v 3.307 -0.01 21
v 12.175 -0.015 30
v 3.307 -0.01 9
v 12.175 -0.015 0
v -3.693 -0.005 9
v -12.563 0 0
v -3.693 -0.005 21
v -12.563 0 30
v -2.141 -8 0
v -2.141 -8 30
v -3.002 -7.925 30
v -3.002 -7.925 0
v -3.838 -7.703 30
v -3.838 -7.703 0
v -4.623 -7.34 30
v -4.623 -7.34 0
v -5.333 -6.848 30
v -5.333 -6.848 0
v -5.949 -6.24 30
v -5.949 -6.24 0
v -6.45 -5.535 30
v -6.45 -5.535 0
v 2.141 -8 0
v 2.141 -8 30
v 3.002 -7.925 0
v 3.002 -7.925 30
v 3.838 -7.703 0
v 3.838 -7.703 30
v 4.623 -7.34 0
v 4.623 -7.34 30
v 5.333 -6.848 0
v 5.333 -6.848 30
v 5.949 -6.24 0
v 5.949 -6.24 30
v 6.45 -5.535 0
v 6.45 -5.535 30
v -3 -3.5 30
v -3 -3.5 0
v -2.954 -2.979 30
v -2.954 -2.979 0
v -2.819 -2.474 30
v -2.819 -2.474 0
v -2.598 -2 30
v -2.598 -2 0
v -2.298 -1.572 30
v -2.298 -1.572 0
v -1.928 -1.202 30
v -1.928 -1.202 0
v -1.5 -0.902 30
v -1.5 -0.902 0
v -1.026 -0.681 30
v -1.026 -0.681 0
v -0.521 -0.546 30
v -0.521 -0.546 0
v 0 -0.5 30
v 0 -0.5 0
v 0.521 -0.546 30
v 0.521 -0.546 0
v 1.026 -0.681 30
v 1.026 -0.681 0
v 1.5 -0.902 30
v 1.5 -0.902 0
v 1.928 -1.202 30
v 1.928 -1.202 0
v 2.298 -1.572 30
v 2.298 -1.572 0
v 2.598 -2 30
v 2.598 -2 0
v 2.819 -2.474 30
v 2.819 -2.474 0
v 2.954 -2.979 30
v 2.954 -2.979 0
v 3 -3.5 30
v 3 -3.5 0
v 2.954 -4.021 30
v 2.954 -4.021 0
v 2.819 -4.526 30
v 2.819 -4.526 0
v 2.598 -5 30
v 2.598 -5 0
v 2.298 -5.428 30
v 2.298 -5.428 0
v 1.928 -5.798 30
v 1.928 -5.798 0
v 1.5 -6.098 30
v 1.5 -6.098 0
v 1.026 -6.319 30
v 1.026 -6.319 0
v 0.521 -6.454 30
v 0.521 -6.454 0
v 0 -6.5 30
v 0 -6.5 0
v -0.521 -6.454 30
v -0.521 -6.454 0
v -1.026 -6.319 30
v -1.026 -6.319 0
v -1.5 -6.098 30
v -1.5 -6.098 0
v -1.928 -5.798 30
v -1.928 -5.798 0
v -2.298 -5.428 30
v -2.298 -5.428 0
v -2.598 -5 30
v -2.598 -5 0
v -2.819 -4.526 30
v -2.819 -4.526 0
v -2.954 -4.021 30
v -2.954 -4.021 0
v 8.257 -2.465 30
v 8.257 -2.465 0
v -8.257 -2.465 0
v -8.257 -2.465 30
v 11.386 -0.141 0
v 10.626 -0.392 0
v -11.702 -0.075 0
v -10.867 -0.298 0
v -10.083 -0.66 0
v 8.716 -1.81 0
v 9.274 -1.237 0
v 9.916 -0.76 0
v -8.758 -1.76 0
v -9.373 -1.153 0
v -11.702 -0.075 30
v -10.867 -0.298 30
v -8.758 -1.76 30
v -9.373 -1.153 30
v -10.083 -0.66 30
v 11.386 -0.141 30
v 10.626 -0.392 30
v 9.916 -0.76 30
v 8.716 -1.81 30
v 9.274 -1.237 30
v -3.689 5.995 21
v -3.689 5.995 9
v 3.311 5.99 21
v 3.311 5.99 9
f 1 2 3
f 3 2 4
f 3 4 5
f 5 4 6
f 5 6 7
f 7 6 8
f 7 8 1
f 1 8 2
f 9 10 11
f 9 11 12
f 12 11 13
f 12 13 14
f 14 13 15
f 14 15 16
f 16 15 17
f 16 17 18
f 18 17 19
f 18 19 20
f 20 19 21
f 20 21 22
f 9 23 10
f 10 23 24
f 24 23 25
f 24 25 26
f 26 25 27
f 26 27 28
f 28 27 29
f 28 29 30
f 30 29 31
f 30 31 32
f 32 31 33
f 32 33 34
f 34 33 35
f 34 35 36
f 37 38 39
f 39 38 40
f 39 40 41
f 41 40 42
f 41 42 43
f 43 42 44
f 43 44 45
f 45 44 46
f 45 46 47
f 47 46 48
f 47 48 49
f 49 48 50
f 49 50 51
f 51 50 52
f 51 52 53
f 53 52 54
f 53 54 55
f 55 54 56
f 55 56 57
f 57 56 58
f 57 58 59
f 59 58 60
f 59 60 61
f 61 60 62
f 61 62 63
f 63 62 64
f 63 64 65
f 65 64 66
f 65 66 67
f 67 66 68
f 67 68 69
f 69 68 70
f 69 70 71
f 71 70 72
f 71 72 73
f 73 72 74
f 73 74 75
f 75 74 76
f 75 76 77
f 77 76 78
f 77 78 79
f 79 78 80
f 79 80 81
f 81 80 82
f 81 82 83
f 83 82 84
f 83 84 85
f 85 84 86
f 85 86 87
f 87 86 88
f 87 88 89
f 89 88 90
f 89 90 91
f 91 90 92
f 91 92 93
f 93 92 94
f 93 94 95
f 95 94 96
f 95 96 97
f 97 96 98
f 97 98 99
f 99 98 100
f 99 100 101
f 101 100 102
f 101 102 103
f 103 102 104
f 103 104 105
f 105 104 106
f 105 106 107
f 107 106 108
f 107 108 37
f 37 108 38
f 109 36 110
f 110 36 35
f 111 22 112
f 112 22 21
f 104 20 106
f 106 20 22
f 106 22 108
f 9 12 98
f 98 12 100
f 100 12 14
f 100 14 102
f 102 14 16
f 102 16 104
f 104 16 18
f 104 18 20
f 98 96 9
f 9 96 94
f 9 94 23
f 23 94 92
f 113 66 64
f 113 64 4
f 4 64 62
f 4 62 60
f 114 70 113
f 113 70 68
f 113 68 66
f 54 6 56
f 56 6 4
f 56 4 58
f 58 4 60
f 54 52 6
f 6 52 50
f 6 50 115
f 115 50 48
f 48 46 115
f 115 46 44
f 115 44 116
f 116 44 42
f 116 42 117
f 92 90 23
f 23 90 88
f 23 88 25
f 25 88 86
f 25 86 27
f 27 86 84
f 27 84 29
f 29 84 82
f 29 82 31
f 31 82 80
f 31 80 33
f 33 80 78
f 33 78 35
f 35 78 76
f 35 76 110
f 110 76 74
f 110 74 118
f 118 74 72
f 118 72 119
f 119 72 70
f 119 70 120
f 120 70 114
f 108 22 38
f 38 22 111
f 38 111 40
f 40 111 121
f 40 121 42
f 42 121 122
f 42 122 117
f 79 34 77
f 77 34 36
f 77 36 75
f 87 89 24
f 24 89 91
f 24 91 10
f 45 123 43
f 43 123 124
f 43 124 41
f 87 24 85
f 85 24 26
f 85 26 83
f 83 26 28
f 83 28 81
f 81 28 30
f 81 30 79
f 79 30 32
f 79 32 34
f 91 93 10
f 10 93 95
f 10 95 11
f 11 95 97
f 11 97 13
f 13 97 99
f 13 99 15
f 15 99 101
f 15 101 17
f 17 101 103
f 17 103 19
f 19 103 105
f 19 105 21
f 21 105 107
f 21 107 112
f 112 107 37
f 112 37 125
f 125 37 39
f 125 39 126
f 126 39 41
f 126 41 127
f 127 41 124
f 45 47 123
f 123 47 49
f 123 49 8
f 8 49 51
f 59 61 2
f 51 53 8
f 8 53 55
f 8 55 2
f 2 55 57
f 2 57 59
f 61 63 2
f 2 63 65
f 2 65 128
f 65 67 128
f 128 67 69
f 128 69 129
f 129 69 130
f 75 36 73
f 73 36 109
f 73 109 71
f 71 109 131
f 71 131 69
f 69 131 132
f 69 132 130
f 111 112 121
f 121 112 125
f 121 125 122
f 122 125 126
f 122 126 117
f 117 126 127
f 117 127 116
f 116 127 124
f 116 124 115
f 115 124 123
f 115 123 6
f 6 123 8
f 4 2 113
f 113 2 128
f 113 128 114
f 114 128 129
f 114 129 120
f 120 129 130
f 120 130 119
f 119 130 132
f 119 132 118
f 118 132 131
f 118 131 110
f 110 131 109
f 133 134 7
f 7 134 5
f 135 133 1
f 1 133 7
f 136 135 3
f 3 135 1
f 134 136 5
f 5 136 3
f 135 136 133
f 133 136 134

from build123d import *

# Parameters (mm, degrees)
STOCK_AUGET_1_OUTLINE_R = 3
STOCK_AUGET_1_DEPTH     = 30
ESQUISSE1_W             = 7
ESQUISSE1_H             = 12
BOSS_EXTRU_1_DEPTH      = 6


# Read off the part's stored shape, not the designer's step: Stock-auget-1
with BuildPart() as part:
    # Stock-auget-1 outline → Stock-auget-1 (new body)
    with BuildSketch(Plane.XY):
        with BuildLine():
            ThreePointArc((8.256781031, -2.464537089), (9.916165038, -0.760058008), (12.17539903, -0.015298993))
            Line((12.17539903, -0.015298993), (-12.563147232, -9.56e-07))
            ThreePointArc((-12.563147232, -9.56e-07), (-10.082691958, -0.660415437), (-8.256781031, -2.464537089))
            Line((-8.256781031, -2.464537089), (-6.450006579, -5.535462911))
            ThreePointArc((-6.450006579, -5.535462911), (-4.622753843, -7.340352207), (-2.140548629, -8))
            Line((-2.140548629, -8), (2.140548629, -8))
            ThreePointArc((2.140548629, -8), (4.622753843, -7.340352207), (6.450006579, -5.535462911))
            Line((6.450006579, -5.535462911), (8.256781031, -2.464537089))
        make_face()
        with Locations((0, -3.5)):
            Circle(STOCK_AUGET_1_OUTLINE_R, mode=Mode.SUBTRACT)
    extrude(amount=STOCK_AUGET_1_DEPTH)

    # Esquisse1 → Boss.-Extru.1 (add)
    with BuildSketch(Plane(origin=(-4.805e-06, -0.007770331, 0), x_dir=(0.9999998088216733, -0.0006183499145584942, 0), z_dir=(0.0006183499145584943, 0.9999998088216734, 0))):
        with Locations((-0.193144829, -15)):
            Rectangle(ESQUISSE1_W, ESQUISSE1_H)
    extrude(amount=BOSS_EXTRU_1_DEPTH)


solid = part.part
